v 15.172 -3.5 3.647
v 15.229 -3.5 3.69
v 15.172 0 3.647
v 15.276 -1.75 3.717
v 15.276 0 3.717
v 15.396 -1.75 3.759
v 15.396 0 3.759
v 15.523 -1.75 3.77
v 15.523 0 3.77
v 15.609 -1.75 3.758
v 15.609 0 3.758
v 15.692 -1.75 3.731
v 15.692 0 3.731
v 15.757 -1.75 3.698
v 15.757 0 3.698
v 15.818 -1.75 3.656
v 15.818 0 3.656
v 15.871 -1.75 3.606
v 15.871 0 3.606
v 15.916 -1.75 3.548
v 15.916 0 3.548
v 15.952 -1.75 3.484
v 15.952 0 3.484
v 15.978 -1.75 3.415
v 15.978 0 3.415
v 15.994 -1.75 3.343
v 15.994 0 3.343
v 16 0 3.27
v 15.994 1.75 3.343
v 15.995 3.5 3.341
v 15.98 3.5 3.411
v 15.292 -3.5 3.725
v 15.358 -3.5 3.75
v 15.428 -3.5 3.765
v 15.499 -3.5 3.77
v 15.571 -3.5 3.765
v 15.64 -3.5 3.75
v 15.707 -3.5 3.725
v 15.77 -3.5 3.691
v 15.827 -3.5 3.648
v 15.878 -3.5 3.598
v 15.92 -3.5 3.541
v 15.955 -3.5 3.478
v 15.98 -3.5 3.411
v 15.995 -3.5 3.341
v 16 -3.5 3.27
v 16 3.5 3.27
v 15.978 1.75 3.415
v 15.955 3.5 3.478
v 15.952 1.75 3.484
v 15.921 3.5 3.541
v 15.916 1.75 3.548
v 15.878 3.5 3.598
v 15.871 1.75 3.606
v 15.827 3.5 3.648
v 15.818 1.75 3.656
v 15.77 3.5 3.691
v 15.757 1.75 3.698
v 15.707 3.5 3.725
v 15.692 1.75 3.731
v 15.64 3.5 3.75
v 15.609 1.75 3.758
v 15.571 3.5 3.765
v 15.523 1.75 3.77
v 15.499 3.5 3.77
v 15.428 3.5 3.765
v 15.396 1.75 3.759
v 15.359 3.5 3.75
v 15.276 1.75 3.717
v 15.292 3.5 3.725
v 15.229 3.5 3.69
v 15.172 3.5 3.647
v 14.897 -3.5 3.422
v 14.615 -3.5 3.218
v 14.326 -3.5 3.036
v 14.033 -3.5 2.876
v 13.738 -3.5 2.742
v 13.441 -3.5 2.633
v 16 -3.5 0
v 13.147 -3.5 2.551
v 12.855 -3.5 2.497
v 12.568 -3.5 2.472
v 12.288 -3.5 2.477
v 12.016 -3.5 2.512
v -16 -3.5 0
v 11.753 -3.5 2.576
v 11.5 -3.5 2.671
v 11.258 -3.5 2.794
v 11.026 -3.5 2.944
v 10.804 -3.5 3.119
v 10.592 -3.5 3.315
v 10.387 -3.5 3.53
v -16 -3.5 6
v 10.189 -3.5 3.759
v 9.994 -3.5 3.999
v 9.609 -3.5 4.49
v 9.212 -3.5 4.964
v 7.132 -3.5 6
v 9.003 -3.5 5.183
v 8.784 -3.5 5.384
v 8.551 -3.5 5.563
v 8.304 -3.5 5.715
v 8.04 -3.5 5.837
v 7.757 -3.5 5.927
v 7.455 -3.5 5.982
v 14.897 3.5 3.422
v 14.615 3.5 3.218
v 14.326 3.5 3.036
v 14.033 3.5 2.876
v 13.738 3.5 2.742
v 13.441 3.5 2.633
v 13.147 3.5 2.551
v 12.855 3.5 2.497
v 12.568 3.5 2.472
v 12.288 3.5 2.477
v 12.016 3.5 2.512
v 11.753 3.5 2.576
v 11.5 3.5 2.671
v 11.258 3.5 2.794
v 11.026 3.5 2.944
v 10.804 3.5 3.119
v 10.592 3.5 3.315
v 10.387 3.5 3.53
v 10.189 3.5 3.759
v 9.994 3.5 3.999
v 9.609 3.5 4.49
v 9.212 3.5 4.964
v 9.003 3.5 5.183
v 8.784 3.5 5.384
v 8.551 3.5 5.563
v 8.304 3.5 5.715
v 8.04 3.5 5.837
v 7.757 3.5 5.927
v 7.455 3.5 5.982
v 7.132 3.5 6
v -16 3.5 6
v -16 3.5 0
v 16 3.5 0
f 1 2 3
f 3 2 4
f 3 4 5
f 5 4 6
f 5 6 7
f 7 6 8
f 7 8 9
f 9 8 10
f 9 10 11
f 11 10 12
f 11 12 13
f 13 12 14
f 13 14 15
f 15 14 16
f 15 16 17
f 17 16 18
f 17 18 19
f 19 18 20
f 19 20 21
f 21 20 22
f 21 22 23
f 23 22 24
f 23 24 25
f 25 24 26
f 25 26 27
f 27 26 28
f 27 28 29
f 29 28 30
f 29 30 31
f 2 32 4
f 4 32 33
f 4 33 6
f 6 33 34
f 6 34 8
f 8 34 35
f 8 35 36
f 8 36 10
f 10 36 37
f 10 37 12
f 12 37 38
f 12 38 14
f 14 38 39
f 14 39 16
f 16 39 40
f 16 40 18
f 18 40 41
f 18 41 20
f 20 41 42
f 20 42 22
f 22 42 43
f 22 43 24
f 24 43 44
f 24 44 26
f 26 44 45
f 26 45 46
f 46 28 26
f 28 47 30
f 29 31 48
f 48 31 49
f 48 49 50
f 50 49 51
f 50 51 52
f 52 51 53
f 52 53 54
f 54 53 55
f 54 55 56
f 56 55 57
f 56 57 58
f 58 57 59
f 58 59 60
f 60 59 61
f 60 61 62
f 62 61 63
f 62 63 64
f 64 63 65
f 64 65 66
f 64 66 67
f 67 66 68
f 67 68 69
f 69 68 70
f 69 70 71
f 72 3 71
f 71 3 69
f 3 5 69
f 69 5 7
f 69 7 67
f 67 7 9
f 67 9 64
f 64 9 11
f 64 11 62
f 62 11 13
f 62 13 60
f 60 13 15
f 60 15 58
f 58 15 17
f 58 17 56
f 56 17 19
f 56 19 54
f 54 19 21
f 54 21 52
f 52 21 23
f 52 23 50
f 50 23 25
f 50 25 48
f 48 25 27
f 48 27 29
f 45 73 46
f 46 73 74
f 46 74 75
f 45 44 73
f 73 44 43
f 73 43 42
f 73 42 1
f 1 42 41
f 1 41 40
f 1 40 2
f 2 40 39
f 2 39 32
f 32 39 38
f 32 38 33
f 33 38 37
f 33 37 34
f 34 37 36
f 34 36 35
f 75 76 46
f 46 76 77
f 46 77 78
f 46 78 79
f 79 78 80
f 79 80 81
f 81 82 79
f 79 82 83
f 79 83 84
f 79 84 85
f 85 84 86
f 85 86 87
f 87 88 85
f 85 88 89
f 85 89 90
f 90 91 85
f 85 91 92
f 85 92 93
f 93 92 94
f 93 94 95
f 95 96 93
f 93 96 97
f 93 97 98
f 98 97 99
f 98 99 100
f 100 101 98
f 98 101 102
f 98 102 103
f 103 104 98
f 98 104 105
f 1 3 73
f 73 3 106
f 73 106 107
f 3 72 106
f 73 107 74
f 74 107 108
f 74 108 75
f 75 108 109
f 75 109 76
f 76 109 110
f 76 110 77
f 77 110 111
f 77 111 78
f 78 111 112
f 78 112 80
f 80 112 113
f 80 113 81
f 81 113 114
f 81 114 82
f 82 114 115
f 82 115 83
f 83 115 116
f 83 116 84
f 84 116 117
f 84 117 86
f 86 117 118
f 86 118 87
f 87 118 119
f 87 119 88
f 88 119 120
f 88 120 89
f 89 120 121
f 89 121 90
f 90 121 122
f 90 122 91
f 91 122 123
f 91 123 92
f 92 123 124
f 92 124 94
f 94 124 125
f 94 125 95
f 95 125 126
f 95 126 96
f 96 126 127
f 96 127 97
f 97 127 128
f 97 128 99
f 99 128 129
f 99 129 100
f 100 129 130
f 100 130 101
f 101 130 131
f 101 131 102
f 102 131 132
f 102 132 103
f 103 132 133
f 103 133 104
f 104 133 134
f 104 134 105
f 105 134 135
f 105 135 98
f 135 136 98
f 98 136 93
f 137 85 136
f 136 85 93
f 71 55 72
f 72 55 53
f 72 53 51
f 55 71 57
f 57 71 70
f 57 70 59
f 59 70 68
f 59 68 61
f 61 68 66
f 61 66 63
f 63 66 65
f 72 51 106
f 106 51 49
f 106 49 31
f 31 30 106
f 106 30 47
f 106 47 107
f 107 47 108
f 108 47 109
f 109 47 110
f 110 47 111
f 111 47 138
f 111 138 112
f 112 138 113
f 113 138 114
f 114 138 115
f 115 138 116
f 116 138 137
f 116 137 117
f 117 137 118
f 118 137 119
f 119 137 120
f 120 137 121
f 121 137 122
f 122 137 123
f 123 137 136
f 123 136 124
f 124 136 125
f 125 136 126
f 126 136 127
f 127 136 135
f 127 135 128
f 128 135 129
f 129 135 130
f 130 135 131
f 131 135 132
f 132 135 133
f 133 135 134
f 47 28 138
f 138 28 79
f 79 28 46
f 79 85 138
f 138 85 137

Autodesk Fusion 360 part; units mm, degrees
sketch "Sketch1" plane through (0, 0, 0) normal (0, 0, 1) x (1, 0, 0)
  line L0 (16, 3.5) -> (-16, 3.5)
  line L1 (-16, 3.5) -> (-16, -3.5)
  line L2 (-16, -3.5) -> (16, -3.5)
  line L3 (16, -3.5) -> (16, 3.5)
  line L4 (16, 3.5) -> (-16, -3.5) construction
  line L5 (-16, 3.5) -> (16, -3.5) construction
  dimension "d1" = 7
  dimension "d2" = 32
extrude "Extrude1" add sketch "Sketch1" along normal blind 6
sketch "Sketch2" plane through (0, 3.5, 0) normal (0, 1, 0) x (-1, 0, 0)
  line L0 (-16, 0) -> (16, 0)
  line L1 (16, 0) -> (16, 6)
  line L2 (16, 6) -> (-16, 6)
  line L3 (-16, 6) -> (-16, 0)
  spline S0 degree 5 poles (-7.1322, 6) (-7.3673, 6) (-7.8114, 5.9542) (-8.3999, 5.7479) (-9.0471, 5.2296) (-9.7248, 4.3513) (-10.3869, 3.4588) (-11.1357, 2.7606) (-12.0283, 2.4083) (-13.0413, 2.4414) (-14.1039, 2.8325) (-14.9234, 3.3859) (-15.4861, 3.911) (-15.8334, 4.3063) (-16, 4.5153) knots 0 0 0 0 0 0 0.1 0.2 0.3 0.4 0.5 0.6 0.7 0.8 0.9 1 1 1 1 1 1
  line L4 (-6.288, 6) -> (-7.9764, 6)
  line L5 (-15.3842, 3.743) -> (-16.6158, 5.2877)
  point P0 (-11.1746, 2.8439)
extrude "Extrude2" cut sketch "Sketch2" against normal through all contours L2 L3 S0 L4
fillet "Fillet1" radius 0.5 1 edges at (16, 0, 4.5153)
